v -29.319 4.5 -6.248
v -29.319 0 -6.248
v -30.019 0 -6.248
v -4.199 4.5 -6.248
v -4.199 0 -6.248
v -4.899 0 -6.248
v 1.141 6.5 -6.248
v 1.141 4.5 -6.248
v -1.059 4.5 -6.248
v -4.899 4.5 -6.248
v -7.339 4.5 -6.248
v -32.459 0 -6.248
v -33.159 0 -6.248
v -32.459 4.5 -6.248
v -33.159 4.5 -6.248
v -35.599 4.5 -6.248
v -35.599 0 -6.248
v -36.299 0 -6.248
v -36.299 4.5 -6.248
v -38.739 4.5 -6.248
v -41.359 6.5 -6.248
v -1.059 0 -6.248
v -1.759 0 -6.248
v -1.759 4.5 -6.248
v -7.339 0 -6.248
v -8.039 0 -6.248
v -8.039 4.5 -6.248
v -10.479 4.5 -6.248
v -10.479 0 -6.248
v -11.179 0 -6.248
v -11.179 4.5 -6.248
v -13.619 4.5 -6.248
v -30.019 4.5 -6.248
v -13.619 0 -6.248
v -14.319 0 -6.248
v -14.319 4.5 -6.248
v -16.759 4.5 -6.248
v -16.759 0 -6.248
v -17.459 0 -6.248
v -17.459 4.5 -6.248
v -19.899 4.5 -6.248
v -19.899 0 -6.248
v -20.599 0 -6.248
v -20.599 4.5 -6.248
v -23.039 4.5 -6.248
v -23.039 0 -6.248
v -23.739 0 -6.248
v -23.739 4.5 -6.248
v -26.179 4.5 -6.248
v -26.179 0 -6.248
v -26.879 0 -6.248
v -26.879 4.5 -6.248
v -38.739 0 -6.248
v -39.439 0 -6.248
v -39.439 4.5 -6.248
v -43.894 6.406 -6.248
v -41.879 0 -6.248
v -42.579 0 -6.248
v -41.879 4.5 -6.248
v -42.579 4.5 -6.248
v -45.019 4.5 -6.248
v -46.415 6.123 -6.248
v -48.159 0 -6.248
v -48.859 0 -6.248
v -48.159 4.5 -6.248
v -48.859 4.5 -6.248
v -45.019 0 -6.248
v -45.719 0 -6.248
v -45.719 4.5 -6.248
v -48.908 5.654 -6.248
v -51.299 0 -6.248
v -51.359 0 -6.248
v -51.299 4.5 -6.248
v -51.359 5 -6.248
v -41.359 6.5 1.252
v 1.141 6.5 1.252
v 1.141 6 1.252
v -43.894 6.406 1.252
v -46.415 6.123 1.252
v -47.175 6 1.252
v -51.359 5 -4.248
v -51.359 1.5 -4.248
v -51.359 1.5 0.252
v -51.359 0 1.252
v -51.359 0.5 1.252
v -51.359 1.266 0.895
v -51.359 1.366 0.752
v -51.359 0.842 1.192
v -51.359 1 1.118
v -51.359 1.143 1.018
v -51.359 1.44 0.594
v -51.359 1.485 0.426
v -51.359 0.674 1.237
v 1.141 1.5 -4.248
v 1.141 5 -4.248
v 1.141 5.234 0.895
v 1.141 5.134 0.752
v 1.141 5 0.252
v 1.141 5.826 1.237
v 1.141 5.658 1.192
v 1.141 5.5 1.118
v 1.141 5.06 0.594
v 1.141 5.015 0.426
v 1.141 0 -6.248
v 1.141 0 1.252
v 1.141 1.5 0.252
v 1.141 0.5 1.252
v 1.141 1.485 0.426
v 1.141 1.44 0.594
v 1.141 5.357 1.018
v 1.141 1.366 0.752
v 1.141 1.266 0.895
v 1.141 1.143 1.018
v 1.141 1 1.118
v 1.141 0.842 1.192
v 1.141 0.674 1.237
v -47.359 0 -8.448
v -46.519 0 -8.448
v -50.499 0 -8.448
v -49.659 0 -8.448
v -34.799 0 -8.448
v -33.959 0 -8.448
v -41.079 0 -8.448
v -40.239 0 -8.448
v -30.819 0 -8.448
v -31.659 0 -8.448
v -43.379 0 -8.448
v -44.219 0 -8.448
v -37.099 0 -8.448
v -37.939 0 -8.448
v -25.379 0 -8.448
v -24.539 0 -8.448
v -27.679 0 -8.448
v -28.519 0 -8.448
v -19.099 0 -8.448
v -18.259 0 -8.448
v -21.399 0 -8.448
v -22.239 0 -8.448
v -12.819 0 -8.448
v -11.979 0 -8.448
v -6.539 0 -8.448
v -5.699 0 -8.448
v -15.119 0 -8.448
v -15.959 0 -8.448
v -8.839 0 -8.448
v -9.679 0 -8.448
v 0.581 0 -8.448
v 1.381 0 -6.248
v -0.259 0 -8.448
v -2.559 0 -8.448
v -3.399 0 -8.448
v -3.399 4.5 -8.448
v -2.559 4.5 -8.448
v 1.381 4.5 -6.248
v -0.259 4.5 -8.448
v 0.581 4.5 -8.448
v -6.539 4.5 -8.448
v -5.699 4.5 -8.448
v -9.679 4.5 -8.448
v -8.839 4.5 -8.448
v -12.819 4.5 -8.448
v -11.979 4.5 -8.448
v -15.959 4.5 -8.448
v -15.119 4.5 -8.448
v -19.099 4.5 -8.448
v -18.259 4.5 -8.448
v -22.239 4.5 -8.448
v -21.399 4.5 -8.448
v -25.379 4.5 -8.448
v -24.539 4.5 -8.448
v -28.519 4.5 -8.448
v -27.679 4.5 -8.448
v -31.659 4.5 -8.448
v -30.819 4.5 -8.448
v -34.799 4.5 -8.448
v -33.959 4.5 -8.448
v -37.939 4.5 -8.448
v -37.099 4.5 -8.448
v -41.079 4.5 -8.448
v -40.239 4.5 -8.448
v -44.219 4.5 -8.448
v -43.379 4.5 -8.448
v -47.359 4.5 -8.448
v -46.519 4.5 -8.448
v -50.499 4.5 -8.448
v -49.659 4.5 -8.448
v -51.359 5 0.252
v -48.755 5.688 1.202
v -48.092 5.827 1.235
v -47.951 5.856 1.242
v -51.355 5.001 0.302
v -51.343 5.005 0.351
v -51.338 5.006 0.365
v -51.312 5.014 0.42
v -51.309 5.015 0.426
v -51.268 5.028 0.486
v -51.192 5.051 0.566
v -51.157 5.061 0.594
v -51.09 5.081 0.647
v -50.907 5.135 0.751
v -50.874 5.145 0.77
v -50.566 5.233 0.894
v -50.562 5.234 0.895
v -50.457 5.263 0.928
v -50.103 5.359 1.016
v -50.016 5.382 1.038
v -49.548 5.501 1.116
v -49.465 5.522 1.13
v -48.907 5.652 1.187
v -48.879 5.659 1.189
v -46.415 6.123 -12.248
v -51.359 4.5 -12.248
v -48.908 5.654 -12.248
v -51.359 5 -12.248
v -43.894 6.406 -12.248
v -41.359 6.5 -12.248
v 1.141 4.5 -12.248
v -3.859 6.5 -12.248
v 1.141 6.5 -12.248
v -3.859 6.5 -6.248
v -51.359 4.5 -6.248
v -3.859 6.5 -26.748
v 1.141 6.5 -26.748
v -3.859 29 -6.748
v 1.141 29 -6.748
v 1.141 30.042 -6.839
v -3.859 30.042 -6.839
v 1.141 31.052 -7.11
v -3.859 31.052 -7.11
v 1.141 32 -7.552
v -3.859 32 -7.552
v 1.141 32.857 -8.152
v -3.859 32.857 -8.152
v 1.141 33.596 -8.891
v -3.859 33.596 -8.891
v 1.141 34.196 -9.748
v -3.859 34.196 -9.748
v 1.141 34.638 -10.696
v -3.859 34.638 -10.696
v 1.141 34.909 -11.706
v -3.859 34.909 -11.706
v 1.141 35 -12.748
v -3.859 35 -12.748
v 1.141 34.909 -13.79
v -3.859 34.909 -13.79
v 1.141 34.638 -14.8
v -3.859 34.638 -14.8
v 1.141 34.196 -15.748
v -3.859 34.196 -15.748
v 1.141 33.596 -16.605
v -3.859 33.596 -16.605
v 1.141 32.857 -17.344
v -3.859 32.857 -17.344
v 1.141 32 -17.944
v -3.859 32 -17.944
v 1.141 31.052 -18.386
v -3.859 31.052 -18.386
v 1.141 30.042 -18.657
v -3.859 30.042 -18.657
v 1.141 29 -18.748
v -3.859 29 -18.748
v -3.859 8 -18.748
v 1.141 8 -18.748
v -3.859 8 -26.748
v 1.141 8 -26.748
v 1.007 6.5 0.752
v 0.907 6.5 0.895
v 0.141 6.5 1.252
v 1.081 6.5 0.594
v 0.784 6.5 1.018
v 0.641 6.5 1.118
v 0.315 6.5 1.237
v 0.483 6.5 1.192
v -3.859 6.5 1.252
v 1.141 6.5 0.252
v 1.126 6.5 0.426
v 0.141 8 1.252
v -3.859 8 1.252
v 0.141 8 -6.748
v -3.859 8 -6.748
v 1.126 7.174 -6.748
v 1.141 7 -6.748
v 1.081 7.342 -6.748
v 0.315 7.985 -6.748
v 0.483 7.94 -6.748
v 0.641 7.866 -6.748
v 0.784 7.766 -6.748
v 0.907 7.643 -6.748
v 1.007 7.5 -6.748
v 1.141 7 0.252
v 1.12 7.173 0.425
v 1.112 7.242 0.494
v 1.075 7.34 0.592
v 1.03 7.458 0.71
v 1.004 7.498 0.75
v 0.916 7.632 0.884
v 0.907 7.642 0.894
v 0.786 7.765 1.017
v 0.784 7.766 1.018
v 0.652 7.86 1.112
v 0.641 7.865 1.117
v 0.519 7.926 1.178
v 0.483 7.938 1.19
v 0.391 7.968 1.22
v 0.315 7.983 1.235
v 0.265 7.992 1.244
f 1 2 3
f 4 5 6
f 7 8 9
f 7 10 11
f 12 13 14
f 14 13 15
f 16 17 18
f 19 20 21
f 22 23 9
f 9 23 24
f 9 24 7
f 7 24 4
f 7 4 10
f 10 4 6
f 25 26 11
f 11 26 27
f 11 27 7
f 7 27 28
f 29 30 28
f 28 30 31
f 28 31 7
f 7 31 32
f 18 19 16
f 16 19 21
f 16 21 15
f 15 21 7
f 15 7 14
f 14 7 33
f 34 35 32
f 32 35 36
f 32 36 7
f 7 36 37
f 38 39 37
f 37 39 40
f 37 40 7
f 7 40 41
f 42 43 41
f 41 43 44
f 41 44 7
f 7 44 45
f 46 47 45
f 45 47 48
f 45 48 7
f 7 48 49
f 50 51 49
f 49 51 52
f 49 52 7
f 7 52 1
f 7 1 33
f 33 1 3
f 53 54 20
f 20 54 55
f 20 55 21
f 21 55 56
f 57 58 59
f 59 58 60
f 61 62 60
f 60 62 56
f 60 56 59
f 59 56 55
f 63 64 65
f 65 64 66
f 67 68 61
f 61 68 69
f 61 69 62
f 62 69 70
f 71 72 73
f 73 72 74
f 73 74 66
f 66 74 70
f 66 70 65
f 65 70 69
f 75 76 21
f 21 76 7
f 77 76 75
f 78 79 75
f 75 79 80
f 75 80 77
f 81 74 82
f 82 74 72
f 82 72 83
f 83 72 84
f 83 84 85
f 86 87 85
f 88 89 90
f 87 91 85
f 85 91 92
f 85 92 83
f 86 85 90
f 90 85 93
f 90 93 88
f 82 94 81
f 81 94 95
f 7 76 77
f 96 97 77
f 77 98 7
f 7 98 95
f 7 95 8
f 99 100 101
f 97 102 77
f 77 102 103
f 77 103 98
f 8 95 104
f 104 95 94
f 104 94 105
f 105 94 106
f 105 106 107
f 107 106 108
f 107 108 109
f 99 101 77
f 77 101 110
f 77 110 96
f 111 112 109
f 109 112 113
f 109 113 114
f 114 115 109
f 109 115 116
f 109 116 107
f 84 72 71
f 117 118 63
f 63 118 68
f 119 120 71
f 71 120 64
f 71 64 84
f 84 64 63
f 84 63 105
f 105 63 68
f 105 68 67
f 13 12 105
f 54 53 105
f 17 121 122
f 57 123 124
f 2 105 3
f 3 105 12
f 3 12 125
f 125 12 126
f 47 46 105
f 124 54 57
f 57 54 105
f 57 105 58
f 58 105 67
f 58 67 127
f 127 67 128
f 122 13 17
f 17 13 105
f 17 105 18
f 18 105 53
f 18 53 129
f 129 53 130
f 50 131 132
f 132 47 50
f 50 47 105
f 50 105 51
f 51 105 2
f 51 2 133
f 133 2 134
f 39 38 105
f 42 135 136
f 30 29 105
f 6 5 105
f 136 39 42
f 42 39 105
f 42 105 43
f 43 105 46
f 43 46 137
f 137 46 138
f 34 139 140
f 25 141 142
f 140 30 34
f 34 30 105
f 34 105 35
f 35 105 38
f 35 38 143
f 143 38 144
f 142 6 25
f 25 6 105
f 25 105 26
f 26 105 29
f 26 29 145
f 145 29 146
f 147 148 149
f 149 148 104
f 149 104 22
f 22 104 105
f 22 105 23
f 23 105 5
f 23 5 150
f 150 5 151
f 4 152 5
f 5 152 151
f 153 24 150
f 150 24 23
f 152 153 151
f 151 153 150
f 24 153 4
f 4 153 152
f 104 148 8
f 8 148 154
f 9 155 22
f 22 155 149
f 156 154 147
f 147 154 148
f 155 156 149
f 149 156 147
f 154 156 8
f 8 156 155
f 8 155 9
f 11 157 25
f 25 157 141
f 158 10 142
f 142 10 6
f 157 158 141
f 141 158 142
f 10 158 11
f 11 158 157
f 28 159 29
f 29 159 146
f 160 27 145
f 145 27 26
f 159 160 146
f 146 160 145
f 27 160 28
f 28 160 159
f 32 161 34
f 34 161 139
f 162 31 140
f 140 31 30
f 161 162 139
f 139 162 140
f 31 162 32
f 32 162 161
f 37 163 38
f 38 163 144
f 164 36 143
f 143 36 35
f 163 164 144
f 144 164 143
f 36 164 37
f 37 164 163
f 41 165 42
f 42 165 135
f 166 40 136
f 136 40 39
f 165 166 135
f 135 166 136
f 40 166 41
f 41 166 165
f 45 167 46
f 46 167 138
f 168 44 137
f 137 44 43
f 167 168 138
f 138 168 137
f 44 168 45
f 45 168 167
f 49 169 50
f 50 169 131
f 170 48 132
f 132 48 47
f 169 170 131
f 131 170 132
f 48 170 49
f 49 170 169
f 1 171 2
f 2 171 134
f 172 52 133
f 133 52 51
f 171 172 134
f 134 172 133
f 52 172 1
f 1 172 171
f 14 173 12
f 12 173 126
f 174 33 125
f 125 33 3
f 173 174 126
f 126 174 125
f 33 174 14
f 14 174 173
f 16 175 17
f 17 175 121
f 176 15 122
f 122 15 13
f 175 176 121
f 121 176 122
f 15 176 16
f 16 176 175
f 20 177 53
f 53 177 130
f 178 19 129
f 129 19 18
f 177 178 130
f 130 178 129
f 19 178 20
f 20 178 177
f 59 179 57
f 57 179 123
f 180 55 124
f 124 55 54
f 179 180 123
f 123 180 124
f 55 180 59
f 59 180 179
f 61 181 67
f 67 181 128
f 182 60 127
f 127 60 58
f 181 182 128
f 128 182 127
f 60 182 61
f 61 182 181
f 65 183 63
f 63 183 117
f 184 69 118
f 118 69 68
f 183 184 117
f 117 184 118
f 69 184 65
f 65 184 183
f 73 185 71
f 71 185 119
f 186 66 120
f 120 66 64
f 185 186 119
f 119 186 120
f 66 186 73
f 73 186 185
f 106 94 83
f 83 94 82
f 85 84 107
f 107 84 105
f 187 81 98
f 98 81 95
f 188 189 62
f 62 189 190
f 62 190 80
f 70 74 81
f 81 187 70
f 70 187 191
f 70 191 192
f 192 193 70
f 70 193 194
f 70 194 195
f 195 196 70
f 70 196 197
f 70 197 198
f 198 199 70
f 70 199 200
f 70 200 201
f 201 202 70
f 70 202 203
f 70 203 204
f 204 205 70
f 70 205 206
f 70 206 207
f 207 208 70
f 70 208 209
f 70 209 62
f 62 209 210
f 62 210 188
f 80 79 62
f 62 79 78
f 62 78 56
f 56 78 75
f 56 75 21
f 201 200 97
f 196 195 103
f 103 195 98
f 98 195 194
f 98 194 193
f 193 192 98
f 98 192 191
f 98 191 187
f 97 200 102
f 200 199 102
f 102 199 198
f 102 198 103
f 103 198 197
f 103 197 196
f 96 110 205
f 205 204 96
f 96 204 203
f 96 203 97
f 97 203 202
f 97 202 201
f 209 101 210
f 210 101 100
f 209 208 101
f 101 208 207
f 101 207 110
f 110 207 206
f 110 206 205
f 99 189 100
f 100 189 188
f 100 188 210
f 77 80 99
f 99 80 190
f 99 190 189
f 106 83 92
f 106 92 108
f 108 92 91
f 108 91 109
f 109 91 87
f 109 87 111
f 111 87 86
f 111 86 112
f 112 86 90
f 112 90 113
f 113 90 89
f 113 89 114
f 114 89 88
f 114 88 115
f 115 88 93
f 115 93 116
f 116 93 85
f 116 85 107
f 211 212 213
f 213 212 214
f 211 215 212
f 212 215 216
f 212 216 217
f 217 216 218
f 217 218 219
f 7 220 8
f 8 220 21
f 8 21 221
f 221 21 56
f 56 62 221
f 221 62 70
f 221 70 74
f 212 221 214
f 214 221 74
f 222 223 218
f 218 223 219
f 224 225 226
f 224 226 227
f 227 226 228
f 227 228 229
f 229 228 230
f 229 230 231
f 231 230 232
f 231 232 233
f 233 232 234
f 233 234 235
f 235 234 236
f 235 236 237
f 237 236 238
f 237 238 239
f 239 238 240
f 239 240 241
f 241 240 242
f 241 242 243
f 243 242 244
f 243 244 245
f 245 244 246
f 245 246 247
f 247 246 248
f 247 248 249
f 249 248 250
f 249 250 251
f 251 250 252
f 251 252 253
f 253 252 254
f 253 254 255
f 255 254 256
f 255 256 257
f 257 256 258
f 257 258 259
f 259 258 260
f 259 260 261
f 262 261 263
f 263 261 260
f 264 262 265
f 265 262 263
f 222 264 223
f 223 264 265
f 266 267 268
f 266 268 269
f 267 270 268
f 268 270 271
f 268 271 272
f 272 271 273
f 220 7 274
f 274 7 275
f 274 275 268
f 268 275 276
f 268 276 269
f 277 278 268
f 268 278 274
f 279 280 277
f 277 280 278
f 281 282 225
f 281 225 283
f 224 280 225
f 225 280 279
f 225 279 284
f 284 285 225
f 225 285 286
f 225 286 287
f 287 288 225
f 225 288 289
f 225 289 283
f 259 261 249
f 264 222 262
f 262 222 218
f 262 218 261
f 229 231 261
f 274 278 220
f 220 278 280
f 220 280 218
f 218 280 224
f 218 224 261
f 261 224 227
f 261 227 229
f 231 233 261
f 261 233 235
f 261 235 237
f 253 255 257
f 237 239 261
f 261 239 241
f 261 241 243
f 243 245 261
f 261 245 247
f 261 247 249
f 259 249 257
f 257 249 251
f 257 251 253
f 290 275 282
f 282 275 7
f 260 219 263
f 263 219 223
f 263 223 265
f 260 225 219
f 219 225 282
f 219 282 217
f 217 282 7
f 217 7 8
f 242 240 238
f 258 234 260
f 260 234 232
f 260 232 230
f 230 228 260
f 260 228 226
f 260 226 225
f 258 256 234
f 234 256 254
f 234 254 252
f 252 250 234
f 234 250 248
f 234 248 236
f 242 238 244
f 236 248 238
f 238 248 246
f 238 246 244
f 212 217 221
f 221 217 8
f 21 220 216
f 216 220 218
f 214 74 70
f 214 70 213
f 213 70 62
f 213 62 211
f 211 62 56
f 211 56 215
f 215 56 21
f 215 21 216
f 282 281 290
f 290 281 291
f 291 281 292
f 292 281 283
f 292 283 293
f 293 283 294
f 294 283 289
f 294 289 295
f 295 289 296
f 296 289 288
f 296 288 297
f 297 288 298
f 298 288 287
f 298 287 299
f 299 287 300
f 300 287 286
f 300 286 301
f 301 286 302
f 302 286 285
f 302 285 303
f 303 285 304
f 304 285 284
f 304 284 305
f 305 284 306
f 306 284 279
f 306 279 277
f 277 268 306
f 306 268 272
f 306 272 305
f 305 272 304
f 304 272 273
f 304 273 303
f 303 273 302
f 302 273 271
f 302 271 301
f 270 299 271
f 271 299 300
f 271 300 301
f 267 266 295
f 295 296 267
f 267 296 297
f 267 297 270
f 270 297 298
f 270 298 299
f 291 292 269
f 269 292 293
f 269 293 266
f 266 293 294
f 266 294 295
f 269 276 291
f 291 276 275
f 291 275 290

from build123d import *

# Parameters (mm, degrees)
SKETCH1_W           = 65
SKETCH1_H           = 2
BOSS_EXTRUDE1_DEPTH = 6.5
BOSS_EXTRUDE2_DEPTH = 4.5
SKETCH5_W           = 67
SKETCH5_H           = 1.5
BOSS_EXTRUDE6_DEPTH = 5.5
BOSS_EXTRUDE7_DEPTH = 5
SKETCH7_W           = 65
SKETCH7_H           = 2
BOSS_EXTRUDE8_DEPTH = 6
SKETCH8_W           = 25.322951889
SKETCH8_H           = 29.09091251
CUT_EXTRUDE1_DEPTH  = 36
CUT_EXTRUDE2_DEPTH  = 29
FILLET5_R           = 1
FILLET7_R           = 1


with BuildPart() as part:
    # Sketch1 → Boss-Extrude1 (new body)
    with BuildSketch(Plane(origin=(0, 0, 0), x_dir=(1, 0, 0), z_dir=(0, 1, 0))):
        with Locations((-31.358656154, 5.24806396)):
            Rectangle(SKETCH1_W, SKETCH1_H)
    extrude(amount=BOSS_EXTRUDE1_DEPTH)

    # Sketch2 → Boss-Extrude2 (add)
    with BuildSketch(Plane(origin=(0, 0, 0), x_dir=(1, 0, 0), z_dir=(0, 1, 0))):
        Polygon((-63.058656154, 8.44806396), (-63.858656154, 6.24806396), (-61.418656154, 6.24806396), (-62.218656154, 8.44806396), align=None)
        Polygon((-59.918656154, 8.44806396), (-60.718656154, 6.24806396), (-58.278656154, 6.24806396), (-59.078656154, 8.44806396), align=None)
        Polygon((-56.778656154, 8.44806396), (-57.578656154, 6.24806396), (-55.138656154, 6.24806396), (-55.938656154, 8.44806396), align=None)
        Polygon((-53.638656154, 8.44806396), (-54.438656154, 6.24806396), (-51.998656154, 6.24806396), (-52.798656154, 8.44806396), align=None)
        Polygon((-50.498656154, 8.44806396), (-51.298656154, 6.24806396), (-48.858656154, 6.24806396), (-49.658656154, 8.44806396), align=None)
        Polygon((-47.358656154, 8.44806396), (-48.158656154, 6.24806396), (-45.718656154, 6.24806396), (-46.518656154, 8.44806396), align=None)
        Polygon((-44.218656154, 8.44806396), (-45.018656154, 6.24806396), (-42.578656154, 6.24806396), (-43.378656154, 8.44806396), align=None)
        Polygon((-41.078656154, 8.44806396), (-41.878656154, 6.24806396), (-39.438656154, 6.24806396), (-40.238656154, 8.44806396), align=None)
        Polygon((-37.938656154, 8.44806396), (-38.738656154, 6.24806396), (-36.298656154, 6.24806396), (-37.098656154, 8.44806396), align=None)
        Polygon((-34.798656154, 8.44806396), (-35.598656154, 6.24806396), (-33.158656154, 6.24806396), (-33.958656154, 8.44806396), align=None)
        Polygon((-31.658656154, 8.44806396), (-32.458656154, 6.24806396), (-30.018656154, 6.24806396), (-30.818656154, 8.44806396), align=None)
        Polygon((-29.318656154, 6.24806396), (-26.878656154, 6.24806396), (-27.678656154, 8.44806396), (-28.518656154, 8.44806396), align=None)
        Polygon((-26.178656154, 6.24806396), (-23.738656154, 6.24806396), (-24.538656154, 8.44806396), (-25.378656154, 8.44806396), align=None)
        Polygon((-23.038656154, 6.24806396), (-20.598656154, 6.24806396), (-21.398656154, 8.44806396), (-22.238656154, 8.44806396), align=None)
        Polygon((-19.898656154, 6.24806396), (-17.458656154, 6.24806396), (-18.258656154, 8.44806396), (-19.098656154, 8.44806396), align=None)
        Polygon((-16.758656154, 6.24806396), (-14.318656154, 6.24806396), (-15.118656154, 8.44806396), (-15.958656154, 8.44806396), align=None)
        Polygon((-13.618656154, 6.24806396), (-11.178656154, 6.24806396), (-11.978656154, 8.44806396), (-12.818656154, 8.44806396), align=None)
        Polygon((-10.478656154, 6.24806396), (-8.038656154, 6.24806396), (-8.838656154, 8.44806396), (-9.678656154, 8.44806396), align=None)
        Polygon((-7.338656154, 6.24806396), (-4.898656154, 6.24806396), (-5.698656154, 8.44806396), (-6.538656154, 8.44806396), align=None)
        Polygon((-4.198656154, 6.24806396), (-1.758656154, 6.24806396), (-2.558656154, 8.44806396), (-3.398656154, 8.44806396), align=None)
        Polygon((-3.398656154, 8.44806396), (-4.198656154, 6.24806396), (-1.758656154, 6.24806396), (-2.558656154, 8.44806396), align=None)
        Polygon((-0.258656154, 8.44806396), (-1.058656154, 6.24806396), (1.141343846, 6.24806396), (1.381343846, 6.24806396), (0.581343846, 8.44806396), align=None)
        Polygon((-6.538656154, 8.44806396), (-7.338656154, 6.24806396), (-4.898656154, 6.24806396), (-5.698656154, 8.44806396), align=None)
        Polygon((-9.678656154, 8.44806396), (-10.478656154, 6.24806396), (-8.038656154, 6.24806396), (-8.838656154, 8.44806396), align=None)
        Polygon((-12.818656154, 8.44806396), (-13.618656154, 6.24806396), (-11.178656154, 6.24806396), (-11.978656154, 8.44806396), align=None)
        Polygon((-15.958656154, 8.44806396), (-16.758656154, 6.24806396), (-14.318656154, 6.24806396), (-15.118656154, 8.44806396), align=None)
        Polygon((-19.098656154, 8.44806396), (-19.898656154, 6.24806396), (-17.458656154, 6.24806396), (-18.258656154, 8.44806396), align=None)
        Polygon((-22.238656154, 8.44806396), (-23.038656154, 6.24806396), (-20.598656154, 6.24806396), (-21.398656154, 8.44806396), align=None)
        Polygon((-25.378656154, 8.44806396), (-26.178656154, 6.24806396), (-23.738656154, 6.24806396), (-24.538656154, 8.44806396), align=None)
        Polygon((-28.518656154, 8.44806396), (-29.318656154, 6.24806396), (-26.878656154, 6.24806396), (-27.678656154, 8.44806396), align=None)
    extrude(amount=BOSS_EXTRUDE2_DEPTH)

    # Sketch5 → Boss-Extrude6 (add)
    with BuildSketch(Plane.XY.offset(-4.24806396)):
        with Locations((-32.358656154, 0.75)):
            Rectangle(SKETCH5_W, SKETCH5_H)
        with Locations((-32.358656154, 5.75)):
            Rectangle(SKETCH5_W, SKETCH5_H)
    extrude(amount=BOSS_EXTRUDE6_DEPTH)


with BuildPart() as body_2:
    # Sketch6 → Boss-Extrude7 (new body)
    with BuildSketch(Plane(origin=(1.141343846, 0, 0), x_dir=(0, 0, -1), z_dir=(1, 0, 0))):
        with BuildLine():
            Line((-1.25193604, 6.5), (6.24806396, 6.5))
            Line((6.24806396, 6.5), (26.74806396, 6.5))
            Line((26.74806396, 6.5), (26.74806396, 8))
            Line((26.74806396, 8), (18.74806396, 8))
            Line((18.74806396, 8), (18.74806396, 29))
            ThreePointArc((18.74806396, 29), (12.74806396, 35), (6.74806396, 29))
            Line((6.74806396, 29), (6.74806396, 8))
            Line((6.74806396, 8), (-1.25193604, 8))
            Line((-1.25193604, 8), (-1.25193604, 6.5))
        make_face()
    extrude(amount=-BOSS_EXTRUDE7_DEPTH)

    # Sketch7 → Boss-Extrude8 (add)
    with BuildSketch(Plane(origin=(0, 0, -6.24806396), x_dir=(-1, 0, 0), z_dir=(0, 0, -1))):
        with Locations((31.358656154, 5.5)):
            Rectangle(SKETCH7_W, SKETCH7_H)
    extrude(amount=BOSS_EXTRUDE8_DEPTH)


with BuildPart() as cut_extrude1_tool:
    # Sketch8 → Cut-Extrude1 (new body, through all)
    with BuildSketch(Plane(origin=(0, 0, 0), x_dir=(-1, 0, 0), z_dir=(0, -1, 0))):
        with Locations((64.020245629, 5.403519831)):
            Rectangle(SKETCH8_W, SKETCH8_H)
    extrude(amount=-CUT_EXTRUDE1_DEPTH)


with BuildPart() as part_1:
    add(part.part)

    # Cut-Extrude1: cut by cut_extrude1_tool
    add(cut_extrude1_tool.part, mode=Mode.SUBTRACT)


with BuildPart() as body_2_1:
    add(body_2.part)

    # Cut-Extrude1: cut by cut_extrude1_tool
    add(cut_extrude1_tool.part, mode=Mode.SUBTRACT)


with BuildPart() as cut_extrude2_tool:
    # Sketch10 → Cut-Extrude2 (new body, through all)
    with BuildSketch(Plane.XY.offset(1.25193604)):
        with BuildLine():
            Line((-51.358769684, 6.5), (-51.358769684, 5))
            ThreePointArc((-51.358769684, 5), (-46.414706788, 6.122914027), (-41.358769684, 6.5))
            Line((-41.358769684, 6.5), (-51.358769684, 6.5))
        make_face()
    extrude(amount=-CUT_EXTRUDE2_DEPTH)


with BuildPart() as part_2:
    add(part_1.part)

    # Cut-Extrude2: cut by cut_extrude2_tool
    add(cut_extrude2_tool.part, mode=Mode.SUBTRACT)

    # Fillet7
    fillet7_edges = [part_2.edges().sort_by_distance(p)[0] for p in [
        (-25.108712919, 5, 1.25193604),
        (-25.108712919, 1.5, 1.25193604),
    ]]
    fillet(fillet7_edges, radius=FILLET7_R)


with BuildPart() as body_2_2:
    add(body_2_1.part)

    # Cut-Extrude2: cut by cut_extrude2_tool
    add(cut_extrude2_tool.part, mode=Mode.SUBTRACT)

    # Fillet5
    fillet5_edges = [body_2_2.edges().sort_by_distance(p)[0] for p in [
        (1.141343846, 7.25, 1.25193604),
        (1.141343846, 8, -2.74806396),
    ]]
    fillet(fillet5_edges, radius=FILLET5_R)


solid = Compound([part_2.part, body_2_2.part])
